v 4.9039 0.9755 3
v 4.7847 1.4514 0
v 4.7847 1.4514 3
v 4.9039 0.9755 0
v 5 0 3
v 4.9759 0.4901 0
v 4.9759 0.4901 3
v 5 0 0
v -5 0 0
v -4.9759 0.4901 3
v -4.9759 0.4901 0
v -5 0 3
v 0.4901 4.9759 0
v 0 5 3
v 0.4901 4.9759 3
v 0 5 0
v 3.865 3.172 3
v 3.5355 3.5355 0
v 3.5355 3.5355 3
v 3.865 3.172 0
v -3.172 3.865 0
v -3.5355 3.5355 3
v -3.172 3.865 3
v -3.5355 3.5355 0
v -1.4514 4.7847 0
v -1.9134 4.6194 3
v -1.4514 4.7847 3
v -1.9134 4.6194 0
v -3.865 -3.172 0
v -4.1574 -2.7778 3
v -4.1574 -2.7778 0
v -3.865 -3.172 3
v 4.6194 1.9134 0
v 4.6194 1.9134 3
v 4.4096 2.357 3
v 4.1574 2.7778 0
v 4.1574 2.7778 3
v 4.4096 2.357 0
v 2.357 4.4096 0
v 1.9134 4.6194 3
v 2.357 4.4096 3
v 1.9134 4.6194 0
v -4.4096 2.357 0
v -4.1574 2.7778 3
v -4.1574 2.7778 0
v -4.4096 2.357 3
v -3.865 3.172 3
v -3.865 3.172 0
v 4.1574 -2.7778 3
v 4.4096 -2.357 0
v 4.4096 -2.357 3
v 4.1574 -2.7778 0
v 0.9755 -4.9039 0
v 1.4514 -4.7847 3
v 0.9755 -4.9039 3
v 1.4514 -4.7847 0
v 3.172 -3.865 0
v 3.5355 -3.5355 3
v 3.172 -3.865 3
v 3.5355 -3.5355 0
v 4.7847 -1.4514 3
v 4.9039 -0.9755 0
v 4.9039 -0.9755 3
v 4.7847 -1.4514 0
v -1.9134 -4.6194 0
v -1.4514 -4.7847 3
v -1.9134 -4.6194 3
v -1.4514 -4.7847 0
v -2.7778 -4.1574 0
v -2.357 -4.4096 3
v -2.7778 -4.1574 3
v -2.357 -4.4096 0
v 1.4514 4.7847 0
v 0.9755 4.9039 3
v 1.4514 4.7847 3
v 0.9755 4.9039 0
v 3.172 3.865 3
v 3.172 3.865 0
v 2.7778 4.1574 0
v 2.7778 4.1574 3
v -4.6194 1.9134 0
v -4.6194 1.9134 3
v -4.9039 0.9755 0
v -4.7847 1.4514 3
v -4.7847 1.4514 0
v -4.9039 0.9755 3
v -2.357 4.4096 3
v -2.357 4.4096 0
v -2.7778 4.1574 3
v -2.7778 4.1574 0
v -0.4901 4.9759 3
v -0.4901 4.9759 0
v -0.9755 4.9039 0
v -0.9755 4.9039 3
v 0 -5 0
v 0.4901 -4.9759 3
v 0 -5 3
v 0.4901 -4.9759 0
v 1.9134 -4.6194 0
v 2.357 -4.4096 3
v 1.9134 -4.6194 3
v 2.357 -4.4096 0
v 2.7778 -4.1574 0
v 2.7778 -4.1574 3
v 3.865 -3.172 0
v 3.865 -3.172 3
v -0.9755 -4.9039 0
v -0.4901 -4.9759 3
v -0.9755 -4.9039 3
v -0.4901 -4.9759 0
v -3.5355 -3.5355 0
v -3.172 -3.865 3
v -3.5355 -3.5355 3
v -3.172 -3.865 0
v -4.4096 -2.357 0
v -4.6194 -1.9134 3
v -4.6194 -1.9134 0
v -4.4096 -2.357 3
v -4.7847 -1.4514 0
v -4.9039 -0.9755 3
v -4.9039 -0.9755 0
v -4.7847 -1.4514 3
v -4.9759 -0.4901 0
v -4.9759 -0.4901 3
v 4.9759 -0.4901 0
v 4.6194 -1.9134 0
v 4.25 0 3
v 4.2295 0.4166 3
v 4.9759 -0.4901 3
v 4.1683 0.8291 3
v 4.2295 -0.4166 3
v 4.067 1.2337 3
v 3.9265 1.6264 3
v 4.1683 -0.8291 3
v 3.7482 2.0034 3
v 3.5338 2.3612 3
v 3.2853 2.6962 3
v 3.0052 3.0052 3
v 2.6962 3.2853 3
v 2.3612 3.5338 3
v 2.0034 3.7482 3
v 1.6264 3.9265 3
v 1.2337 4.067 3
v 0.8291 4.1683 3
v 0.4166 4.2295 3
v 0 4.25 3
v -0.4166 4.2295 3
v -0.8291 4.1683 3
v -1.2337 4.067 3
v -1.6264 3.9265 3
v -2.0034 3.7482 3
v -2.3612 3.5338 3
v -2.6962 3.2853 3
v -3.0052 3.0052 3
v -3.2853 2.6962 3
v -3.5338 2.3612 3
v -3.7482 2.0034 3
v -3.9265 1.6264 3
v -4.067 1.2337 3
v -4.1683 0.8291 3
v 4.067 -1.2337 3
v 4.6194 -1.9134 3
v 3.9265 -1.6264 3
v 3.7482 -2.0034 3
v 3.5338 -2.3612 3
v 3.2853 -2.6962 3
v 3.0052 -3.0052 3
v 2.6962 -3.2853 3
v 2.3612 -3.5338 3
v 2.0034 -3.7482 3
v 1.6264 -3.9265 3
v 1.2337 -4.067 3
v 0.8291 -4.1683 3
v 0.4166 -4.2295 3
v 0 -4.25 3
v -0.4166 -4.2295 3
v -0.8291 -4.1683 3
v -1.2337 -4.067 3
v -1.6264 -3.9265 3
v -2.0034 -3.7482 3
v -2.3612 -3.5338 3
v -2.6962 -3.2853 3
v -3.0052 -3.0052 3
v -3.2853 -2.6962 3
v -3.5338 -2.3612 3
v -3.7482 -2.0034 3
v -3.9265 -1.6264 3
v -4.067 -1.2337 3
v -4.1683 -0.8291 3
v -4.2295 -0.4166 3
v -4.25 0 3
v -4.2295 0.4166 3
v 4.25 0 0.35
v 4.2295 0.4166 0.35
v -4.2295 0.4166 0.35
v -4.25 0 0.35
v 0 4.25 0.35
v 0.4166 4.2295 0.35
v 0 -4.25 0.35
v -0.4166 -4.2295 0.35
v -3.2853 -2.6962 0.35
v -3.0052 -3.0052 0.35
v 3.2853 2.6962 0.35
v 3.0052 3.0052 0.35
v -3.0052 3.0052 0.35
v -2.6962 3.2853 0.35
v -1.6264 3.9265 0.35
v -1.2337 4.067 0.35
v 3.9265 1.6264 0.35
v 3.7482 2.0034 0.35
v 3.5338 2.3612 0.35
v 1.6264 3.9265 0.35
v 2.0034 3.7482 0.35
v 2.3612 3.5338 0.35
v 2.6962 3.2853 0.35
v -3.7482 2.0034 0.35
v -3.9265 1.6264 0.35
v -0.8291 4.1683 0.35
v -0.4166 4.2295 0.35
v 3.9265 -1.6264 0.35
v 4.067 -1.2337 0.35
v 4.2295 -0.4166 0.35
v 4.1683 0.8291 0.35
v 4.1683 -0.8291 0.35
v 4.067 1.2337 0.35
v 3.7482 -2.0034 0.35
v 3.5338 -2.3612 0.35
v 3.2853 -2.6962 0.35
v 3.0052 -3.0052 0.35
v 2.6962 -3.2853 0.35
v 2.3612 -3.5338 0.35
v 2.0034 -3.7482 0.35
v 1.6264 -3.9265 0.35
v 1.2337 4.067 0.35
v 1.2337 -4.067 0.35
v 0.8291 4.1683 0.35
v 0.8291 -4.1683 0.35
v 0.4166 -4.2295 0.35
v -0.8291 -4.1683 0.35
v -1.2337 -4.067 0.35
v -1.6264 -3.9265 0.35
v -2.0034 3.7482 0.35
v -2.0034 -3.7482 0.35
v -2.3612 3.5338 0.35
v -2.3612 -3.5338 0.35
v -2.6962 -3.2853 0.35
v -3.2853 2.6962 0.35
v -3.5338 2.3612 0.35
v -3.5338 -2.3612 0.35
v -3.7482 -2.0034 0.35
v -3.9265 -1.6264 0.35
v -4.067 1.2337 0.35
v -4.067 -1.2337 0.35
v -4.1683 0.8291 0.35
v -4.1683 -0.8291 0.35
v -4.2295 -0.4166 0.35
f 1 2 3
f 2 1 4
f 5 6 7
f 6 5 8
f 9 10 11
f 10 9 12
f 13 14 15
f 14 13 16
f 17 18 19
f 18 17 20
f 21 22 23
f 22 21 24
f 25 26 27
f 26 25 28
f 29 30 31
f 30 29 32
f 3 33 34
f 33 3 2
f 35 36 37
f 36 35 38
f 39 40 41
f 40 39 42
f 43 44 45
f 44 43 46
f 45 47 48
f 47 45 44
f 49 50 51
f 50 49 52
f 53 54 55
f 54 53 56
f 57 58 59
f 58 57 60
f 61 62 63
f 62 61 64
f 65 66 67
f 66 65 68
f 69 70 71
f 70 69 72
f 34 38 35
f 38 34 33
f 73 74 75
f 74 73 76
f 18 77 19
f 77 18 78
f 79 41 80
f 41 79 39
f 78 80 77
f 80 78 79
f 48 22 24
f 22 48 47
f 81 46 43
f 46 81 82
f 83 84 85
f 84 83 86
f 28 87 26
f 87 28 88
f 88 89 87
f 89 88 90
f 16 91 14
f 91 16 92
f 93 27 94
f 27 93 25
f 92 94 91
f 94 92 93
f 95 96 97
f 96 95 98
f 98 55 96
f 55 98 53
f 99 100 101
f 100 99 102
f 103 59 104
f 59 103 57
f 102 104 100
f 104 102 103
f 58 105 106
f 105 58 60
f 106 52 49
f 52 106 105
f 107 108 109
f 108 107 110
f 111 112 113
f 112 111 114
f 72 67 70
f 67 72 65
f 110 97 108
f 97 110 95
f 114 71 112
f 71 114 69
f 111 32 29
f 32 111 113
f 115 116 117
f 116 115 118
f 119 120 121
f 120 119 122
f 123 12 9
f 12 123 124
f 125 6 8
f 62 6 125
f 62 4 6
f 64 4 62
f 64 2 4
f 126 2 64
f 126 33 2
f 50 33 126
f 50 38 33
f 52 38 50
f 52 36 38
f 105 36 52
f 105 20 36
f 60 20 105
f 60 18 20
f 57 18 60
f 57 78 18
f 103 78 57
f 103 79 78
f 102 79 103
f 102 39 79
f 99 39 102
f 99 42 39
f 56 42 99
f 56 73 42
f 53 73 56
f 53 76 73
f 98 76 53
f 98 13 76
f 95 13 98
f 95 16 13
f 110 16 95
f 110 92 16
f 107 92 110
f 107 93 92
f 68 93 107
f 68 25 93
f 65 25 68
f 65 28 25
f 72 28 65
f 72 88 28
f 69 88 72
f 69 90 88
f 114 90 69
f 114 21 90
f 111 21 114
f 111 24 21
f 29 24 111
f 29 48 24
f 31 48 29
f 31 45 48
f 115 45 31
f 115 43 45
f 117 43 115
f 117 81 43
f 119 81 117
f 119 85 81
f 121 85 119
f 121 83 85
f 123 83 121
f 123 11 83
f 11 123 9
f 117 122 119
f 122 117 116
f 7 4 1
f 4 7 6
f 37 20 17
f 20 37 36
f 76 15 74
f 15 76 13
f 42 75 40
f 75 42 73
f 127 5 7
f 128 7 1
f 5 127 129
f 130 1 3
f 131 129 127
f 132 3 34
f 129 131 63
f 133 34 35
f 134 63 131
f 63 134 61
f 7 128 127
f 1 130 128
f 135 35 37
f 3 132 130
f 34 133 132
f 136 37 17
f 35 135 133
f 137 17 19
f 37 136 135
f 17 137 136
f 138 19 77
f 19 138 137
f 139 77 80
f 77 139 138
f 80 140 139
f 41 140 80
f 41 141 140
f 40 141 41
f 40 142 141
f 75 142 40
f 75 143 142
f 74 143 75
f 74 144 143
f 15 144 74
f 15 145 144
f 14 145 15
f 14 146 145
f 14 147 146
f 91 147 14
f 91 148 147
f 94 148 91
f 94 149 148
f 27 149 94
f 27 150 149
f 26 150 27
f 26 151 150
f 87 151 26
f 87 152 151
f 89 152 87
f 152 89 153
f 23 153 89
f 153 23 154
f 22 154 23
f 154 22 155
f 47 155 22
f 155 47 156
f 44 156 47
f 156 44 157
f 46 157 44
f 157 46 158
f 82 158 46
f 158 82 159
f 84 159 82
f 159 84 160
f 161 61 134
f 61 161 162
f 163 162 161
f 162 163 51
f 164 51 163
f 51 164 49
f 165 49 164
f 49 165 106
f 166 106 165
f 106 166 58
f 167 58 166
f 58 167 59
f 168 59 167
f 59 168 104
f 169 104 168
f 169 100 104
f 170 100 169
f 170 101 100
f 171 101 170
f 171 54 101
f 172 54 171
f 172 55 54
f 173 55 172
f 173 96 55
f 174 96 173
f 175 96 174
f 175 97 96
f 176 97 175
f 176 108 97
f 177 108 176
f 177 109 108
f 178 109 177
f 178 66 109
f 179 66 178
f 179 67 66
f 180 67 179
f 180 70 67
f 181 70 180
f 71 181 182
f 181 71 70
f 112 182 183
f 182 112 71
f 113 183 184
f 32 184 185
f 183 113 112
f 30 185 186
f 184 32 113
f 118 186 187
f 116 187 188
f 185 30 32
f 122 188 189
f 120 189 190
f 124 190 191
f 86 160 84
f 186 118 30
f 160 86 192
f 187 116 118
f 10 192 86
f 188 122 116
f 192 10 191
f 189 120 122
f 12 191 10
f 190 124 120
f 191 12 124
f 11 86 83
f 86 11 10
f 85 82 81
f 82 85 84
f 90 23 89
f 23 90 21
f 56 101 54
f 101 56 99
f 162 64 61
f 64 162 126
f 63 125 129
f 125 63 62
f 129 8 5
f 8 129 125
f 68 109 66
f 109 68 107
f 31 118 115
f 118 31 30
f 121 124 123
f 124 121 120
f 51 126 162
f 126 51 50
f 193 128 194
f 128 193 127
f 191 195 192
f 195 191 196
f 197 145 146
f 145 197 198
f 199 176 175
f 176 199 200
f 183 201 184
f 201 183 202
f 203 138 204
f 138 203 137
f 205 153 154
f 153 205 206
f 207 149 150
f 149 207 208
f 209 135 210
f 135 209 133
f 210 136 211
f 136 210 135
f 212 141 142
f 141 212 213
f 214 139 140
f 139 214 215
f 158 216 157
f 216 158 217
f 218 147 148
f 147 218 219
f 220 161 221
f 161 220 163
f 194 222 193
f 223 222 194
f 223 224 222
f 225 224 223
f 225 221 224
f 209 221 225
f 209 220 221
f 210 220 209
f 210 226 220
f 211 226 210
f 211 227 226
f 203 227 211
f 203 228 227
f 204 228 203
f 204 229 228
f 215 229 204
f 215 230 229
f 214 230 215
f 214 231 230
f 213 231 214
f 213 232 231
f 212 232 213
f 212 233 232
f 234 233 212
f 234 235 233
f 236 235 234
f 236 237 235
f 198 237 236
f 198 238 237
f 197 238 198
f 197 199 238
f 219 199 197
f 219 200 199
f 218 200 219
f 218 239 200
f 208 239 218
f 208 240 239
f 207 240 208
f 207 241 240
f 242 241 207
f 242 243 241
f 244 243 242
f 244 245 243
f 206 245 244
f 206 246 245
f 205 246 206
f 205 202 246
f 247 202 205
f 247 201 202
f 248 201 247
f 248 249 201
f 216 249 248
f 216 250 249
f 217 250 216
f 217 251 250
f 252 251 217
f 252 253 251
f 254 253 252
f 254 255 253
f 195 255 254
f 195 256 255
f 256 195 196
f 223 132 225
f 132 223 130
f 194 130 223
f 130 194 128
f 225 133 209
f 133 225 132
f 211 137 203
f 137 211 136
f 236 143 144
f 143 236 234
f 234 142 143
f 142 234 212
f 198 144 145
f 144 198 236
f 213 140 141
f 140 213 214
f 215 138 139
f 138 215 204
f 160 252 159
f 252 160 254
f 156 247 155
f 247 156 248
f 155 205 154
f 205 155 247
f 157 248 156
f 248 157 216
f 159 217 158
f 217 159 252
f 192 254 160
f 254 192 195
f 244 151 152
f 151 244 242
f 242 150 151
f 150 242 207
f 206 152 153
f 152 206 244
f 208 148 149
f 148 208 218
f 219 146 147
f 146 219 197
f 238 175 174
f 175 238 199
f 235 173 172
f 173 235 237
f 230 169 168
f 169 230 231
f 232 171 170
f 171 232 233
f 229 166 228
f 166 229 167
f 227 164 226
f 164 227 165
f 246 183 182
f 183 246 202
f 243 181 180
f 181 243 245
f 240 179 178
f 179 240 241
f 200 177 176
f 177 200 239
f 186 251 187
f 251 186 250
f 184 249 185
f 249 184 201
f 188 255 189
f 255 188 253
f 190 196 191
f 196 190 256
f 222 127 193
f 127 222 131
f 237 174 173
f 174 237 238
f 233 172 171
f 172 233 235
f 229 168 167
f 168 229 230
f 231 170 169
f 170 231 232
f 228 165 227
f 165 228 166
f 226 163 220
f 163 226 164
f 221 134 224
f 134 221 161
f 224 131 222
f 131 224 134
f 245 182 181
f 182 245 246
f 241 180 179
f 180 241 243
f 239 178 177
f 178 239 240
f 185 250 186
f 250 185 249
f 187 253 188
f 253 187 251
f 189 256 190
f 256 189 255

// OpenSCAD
$fn=64;
difference() {
    cylinder(d=10, h=3);
    translate([0,0,0.35]) cylinder(d=8.5, h=10);
}
